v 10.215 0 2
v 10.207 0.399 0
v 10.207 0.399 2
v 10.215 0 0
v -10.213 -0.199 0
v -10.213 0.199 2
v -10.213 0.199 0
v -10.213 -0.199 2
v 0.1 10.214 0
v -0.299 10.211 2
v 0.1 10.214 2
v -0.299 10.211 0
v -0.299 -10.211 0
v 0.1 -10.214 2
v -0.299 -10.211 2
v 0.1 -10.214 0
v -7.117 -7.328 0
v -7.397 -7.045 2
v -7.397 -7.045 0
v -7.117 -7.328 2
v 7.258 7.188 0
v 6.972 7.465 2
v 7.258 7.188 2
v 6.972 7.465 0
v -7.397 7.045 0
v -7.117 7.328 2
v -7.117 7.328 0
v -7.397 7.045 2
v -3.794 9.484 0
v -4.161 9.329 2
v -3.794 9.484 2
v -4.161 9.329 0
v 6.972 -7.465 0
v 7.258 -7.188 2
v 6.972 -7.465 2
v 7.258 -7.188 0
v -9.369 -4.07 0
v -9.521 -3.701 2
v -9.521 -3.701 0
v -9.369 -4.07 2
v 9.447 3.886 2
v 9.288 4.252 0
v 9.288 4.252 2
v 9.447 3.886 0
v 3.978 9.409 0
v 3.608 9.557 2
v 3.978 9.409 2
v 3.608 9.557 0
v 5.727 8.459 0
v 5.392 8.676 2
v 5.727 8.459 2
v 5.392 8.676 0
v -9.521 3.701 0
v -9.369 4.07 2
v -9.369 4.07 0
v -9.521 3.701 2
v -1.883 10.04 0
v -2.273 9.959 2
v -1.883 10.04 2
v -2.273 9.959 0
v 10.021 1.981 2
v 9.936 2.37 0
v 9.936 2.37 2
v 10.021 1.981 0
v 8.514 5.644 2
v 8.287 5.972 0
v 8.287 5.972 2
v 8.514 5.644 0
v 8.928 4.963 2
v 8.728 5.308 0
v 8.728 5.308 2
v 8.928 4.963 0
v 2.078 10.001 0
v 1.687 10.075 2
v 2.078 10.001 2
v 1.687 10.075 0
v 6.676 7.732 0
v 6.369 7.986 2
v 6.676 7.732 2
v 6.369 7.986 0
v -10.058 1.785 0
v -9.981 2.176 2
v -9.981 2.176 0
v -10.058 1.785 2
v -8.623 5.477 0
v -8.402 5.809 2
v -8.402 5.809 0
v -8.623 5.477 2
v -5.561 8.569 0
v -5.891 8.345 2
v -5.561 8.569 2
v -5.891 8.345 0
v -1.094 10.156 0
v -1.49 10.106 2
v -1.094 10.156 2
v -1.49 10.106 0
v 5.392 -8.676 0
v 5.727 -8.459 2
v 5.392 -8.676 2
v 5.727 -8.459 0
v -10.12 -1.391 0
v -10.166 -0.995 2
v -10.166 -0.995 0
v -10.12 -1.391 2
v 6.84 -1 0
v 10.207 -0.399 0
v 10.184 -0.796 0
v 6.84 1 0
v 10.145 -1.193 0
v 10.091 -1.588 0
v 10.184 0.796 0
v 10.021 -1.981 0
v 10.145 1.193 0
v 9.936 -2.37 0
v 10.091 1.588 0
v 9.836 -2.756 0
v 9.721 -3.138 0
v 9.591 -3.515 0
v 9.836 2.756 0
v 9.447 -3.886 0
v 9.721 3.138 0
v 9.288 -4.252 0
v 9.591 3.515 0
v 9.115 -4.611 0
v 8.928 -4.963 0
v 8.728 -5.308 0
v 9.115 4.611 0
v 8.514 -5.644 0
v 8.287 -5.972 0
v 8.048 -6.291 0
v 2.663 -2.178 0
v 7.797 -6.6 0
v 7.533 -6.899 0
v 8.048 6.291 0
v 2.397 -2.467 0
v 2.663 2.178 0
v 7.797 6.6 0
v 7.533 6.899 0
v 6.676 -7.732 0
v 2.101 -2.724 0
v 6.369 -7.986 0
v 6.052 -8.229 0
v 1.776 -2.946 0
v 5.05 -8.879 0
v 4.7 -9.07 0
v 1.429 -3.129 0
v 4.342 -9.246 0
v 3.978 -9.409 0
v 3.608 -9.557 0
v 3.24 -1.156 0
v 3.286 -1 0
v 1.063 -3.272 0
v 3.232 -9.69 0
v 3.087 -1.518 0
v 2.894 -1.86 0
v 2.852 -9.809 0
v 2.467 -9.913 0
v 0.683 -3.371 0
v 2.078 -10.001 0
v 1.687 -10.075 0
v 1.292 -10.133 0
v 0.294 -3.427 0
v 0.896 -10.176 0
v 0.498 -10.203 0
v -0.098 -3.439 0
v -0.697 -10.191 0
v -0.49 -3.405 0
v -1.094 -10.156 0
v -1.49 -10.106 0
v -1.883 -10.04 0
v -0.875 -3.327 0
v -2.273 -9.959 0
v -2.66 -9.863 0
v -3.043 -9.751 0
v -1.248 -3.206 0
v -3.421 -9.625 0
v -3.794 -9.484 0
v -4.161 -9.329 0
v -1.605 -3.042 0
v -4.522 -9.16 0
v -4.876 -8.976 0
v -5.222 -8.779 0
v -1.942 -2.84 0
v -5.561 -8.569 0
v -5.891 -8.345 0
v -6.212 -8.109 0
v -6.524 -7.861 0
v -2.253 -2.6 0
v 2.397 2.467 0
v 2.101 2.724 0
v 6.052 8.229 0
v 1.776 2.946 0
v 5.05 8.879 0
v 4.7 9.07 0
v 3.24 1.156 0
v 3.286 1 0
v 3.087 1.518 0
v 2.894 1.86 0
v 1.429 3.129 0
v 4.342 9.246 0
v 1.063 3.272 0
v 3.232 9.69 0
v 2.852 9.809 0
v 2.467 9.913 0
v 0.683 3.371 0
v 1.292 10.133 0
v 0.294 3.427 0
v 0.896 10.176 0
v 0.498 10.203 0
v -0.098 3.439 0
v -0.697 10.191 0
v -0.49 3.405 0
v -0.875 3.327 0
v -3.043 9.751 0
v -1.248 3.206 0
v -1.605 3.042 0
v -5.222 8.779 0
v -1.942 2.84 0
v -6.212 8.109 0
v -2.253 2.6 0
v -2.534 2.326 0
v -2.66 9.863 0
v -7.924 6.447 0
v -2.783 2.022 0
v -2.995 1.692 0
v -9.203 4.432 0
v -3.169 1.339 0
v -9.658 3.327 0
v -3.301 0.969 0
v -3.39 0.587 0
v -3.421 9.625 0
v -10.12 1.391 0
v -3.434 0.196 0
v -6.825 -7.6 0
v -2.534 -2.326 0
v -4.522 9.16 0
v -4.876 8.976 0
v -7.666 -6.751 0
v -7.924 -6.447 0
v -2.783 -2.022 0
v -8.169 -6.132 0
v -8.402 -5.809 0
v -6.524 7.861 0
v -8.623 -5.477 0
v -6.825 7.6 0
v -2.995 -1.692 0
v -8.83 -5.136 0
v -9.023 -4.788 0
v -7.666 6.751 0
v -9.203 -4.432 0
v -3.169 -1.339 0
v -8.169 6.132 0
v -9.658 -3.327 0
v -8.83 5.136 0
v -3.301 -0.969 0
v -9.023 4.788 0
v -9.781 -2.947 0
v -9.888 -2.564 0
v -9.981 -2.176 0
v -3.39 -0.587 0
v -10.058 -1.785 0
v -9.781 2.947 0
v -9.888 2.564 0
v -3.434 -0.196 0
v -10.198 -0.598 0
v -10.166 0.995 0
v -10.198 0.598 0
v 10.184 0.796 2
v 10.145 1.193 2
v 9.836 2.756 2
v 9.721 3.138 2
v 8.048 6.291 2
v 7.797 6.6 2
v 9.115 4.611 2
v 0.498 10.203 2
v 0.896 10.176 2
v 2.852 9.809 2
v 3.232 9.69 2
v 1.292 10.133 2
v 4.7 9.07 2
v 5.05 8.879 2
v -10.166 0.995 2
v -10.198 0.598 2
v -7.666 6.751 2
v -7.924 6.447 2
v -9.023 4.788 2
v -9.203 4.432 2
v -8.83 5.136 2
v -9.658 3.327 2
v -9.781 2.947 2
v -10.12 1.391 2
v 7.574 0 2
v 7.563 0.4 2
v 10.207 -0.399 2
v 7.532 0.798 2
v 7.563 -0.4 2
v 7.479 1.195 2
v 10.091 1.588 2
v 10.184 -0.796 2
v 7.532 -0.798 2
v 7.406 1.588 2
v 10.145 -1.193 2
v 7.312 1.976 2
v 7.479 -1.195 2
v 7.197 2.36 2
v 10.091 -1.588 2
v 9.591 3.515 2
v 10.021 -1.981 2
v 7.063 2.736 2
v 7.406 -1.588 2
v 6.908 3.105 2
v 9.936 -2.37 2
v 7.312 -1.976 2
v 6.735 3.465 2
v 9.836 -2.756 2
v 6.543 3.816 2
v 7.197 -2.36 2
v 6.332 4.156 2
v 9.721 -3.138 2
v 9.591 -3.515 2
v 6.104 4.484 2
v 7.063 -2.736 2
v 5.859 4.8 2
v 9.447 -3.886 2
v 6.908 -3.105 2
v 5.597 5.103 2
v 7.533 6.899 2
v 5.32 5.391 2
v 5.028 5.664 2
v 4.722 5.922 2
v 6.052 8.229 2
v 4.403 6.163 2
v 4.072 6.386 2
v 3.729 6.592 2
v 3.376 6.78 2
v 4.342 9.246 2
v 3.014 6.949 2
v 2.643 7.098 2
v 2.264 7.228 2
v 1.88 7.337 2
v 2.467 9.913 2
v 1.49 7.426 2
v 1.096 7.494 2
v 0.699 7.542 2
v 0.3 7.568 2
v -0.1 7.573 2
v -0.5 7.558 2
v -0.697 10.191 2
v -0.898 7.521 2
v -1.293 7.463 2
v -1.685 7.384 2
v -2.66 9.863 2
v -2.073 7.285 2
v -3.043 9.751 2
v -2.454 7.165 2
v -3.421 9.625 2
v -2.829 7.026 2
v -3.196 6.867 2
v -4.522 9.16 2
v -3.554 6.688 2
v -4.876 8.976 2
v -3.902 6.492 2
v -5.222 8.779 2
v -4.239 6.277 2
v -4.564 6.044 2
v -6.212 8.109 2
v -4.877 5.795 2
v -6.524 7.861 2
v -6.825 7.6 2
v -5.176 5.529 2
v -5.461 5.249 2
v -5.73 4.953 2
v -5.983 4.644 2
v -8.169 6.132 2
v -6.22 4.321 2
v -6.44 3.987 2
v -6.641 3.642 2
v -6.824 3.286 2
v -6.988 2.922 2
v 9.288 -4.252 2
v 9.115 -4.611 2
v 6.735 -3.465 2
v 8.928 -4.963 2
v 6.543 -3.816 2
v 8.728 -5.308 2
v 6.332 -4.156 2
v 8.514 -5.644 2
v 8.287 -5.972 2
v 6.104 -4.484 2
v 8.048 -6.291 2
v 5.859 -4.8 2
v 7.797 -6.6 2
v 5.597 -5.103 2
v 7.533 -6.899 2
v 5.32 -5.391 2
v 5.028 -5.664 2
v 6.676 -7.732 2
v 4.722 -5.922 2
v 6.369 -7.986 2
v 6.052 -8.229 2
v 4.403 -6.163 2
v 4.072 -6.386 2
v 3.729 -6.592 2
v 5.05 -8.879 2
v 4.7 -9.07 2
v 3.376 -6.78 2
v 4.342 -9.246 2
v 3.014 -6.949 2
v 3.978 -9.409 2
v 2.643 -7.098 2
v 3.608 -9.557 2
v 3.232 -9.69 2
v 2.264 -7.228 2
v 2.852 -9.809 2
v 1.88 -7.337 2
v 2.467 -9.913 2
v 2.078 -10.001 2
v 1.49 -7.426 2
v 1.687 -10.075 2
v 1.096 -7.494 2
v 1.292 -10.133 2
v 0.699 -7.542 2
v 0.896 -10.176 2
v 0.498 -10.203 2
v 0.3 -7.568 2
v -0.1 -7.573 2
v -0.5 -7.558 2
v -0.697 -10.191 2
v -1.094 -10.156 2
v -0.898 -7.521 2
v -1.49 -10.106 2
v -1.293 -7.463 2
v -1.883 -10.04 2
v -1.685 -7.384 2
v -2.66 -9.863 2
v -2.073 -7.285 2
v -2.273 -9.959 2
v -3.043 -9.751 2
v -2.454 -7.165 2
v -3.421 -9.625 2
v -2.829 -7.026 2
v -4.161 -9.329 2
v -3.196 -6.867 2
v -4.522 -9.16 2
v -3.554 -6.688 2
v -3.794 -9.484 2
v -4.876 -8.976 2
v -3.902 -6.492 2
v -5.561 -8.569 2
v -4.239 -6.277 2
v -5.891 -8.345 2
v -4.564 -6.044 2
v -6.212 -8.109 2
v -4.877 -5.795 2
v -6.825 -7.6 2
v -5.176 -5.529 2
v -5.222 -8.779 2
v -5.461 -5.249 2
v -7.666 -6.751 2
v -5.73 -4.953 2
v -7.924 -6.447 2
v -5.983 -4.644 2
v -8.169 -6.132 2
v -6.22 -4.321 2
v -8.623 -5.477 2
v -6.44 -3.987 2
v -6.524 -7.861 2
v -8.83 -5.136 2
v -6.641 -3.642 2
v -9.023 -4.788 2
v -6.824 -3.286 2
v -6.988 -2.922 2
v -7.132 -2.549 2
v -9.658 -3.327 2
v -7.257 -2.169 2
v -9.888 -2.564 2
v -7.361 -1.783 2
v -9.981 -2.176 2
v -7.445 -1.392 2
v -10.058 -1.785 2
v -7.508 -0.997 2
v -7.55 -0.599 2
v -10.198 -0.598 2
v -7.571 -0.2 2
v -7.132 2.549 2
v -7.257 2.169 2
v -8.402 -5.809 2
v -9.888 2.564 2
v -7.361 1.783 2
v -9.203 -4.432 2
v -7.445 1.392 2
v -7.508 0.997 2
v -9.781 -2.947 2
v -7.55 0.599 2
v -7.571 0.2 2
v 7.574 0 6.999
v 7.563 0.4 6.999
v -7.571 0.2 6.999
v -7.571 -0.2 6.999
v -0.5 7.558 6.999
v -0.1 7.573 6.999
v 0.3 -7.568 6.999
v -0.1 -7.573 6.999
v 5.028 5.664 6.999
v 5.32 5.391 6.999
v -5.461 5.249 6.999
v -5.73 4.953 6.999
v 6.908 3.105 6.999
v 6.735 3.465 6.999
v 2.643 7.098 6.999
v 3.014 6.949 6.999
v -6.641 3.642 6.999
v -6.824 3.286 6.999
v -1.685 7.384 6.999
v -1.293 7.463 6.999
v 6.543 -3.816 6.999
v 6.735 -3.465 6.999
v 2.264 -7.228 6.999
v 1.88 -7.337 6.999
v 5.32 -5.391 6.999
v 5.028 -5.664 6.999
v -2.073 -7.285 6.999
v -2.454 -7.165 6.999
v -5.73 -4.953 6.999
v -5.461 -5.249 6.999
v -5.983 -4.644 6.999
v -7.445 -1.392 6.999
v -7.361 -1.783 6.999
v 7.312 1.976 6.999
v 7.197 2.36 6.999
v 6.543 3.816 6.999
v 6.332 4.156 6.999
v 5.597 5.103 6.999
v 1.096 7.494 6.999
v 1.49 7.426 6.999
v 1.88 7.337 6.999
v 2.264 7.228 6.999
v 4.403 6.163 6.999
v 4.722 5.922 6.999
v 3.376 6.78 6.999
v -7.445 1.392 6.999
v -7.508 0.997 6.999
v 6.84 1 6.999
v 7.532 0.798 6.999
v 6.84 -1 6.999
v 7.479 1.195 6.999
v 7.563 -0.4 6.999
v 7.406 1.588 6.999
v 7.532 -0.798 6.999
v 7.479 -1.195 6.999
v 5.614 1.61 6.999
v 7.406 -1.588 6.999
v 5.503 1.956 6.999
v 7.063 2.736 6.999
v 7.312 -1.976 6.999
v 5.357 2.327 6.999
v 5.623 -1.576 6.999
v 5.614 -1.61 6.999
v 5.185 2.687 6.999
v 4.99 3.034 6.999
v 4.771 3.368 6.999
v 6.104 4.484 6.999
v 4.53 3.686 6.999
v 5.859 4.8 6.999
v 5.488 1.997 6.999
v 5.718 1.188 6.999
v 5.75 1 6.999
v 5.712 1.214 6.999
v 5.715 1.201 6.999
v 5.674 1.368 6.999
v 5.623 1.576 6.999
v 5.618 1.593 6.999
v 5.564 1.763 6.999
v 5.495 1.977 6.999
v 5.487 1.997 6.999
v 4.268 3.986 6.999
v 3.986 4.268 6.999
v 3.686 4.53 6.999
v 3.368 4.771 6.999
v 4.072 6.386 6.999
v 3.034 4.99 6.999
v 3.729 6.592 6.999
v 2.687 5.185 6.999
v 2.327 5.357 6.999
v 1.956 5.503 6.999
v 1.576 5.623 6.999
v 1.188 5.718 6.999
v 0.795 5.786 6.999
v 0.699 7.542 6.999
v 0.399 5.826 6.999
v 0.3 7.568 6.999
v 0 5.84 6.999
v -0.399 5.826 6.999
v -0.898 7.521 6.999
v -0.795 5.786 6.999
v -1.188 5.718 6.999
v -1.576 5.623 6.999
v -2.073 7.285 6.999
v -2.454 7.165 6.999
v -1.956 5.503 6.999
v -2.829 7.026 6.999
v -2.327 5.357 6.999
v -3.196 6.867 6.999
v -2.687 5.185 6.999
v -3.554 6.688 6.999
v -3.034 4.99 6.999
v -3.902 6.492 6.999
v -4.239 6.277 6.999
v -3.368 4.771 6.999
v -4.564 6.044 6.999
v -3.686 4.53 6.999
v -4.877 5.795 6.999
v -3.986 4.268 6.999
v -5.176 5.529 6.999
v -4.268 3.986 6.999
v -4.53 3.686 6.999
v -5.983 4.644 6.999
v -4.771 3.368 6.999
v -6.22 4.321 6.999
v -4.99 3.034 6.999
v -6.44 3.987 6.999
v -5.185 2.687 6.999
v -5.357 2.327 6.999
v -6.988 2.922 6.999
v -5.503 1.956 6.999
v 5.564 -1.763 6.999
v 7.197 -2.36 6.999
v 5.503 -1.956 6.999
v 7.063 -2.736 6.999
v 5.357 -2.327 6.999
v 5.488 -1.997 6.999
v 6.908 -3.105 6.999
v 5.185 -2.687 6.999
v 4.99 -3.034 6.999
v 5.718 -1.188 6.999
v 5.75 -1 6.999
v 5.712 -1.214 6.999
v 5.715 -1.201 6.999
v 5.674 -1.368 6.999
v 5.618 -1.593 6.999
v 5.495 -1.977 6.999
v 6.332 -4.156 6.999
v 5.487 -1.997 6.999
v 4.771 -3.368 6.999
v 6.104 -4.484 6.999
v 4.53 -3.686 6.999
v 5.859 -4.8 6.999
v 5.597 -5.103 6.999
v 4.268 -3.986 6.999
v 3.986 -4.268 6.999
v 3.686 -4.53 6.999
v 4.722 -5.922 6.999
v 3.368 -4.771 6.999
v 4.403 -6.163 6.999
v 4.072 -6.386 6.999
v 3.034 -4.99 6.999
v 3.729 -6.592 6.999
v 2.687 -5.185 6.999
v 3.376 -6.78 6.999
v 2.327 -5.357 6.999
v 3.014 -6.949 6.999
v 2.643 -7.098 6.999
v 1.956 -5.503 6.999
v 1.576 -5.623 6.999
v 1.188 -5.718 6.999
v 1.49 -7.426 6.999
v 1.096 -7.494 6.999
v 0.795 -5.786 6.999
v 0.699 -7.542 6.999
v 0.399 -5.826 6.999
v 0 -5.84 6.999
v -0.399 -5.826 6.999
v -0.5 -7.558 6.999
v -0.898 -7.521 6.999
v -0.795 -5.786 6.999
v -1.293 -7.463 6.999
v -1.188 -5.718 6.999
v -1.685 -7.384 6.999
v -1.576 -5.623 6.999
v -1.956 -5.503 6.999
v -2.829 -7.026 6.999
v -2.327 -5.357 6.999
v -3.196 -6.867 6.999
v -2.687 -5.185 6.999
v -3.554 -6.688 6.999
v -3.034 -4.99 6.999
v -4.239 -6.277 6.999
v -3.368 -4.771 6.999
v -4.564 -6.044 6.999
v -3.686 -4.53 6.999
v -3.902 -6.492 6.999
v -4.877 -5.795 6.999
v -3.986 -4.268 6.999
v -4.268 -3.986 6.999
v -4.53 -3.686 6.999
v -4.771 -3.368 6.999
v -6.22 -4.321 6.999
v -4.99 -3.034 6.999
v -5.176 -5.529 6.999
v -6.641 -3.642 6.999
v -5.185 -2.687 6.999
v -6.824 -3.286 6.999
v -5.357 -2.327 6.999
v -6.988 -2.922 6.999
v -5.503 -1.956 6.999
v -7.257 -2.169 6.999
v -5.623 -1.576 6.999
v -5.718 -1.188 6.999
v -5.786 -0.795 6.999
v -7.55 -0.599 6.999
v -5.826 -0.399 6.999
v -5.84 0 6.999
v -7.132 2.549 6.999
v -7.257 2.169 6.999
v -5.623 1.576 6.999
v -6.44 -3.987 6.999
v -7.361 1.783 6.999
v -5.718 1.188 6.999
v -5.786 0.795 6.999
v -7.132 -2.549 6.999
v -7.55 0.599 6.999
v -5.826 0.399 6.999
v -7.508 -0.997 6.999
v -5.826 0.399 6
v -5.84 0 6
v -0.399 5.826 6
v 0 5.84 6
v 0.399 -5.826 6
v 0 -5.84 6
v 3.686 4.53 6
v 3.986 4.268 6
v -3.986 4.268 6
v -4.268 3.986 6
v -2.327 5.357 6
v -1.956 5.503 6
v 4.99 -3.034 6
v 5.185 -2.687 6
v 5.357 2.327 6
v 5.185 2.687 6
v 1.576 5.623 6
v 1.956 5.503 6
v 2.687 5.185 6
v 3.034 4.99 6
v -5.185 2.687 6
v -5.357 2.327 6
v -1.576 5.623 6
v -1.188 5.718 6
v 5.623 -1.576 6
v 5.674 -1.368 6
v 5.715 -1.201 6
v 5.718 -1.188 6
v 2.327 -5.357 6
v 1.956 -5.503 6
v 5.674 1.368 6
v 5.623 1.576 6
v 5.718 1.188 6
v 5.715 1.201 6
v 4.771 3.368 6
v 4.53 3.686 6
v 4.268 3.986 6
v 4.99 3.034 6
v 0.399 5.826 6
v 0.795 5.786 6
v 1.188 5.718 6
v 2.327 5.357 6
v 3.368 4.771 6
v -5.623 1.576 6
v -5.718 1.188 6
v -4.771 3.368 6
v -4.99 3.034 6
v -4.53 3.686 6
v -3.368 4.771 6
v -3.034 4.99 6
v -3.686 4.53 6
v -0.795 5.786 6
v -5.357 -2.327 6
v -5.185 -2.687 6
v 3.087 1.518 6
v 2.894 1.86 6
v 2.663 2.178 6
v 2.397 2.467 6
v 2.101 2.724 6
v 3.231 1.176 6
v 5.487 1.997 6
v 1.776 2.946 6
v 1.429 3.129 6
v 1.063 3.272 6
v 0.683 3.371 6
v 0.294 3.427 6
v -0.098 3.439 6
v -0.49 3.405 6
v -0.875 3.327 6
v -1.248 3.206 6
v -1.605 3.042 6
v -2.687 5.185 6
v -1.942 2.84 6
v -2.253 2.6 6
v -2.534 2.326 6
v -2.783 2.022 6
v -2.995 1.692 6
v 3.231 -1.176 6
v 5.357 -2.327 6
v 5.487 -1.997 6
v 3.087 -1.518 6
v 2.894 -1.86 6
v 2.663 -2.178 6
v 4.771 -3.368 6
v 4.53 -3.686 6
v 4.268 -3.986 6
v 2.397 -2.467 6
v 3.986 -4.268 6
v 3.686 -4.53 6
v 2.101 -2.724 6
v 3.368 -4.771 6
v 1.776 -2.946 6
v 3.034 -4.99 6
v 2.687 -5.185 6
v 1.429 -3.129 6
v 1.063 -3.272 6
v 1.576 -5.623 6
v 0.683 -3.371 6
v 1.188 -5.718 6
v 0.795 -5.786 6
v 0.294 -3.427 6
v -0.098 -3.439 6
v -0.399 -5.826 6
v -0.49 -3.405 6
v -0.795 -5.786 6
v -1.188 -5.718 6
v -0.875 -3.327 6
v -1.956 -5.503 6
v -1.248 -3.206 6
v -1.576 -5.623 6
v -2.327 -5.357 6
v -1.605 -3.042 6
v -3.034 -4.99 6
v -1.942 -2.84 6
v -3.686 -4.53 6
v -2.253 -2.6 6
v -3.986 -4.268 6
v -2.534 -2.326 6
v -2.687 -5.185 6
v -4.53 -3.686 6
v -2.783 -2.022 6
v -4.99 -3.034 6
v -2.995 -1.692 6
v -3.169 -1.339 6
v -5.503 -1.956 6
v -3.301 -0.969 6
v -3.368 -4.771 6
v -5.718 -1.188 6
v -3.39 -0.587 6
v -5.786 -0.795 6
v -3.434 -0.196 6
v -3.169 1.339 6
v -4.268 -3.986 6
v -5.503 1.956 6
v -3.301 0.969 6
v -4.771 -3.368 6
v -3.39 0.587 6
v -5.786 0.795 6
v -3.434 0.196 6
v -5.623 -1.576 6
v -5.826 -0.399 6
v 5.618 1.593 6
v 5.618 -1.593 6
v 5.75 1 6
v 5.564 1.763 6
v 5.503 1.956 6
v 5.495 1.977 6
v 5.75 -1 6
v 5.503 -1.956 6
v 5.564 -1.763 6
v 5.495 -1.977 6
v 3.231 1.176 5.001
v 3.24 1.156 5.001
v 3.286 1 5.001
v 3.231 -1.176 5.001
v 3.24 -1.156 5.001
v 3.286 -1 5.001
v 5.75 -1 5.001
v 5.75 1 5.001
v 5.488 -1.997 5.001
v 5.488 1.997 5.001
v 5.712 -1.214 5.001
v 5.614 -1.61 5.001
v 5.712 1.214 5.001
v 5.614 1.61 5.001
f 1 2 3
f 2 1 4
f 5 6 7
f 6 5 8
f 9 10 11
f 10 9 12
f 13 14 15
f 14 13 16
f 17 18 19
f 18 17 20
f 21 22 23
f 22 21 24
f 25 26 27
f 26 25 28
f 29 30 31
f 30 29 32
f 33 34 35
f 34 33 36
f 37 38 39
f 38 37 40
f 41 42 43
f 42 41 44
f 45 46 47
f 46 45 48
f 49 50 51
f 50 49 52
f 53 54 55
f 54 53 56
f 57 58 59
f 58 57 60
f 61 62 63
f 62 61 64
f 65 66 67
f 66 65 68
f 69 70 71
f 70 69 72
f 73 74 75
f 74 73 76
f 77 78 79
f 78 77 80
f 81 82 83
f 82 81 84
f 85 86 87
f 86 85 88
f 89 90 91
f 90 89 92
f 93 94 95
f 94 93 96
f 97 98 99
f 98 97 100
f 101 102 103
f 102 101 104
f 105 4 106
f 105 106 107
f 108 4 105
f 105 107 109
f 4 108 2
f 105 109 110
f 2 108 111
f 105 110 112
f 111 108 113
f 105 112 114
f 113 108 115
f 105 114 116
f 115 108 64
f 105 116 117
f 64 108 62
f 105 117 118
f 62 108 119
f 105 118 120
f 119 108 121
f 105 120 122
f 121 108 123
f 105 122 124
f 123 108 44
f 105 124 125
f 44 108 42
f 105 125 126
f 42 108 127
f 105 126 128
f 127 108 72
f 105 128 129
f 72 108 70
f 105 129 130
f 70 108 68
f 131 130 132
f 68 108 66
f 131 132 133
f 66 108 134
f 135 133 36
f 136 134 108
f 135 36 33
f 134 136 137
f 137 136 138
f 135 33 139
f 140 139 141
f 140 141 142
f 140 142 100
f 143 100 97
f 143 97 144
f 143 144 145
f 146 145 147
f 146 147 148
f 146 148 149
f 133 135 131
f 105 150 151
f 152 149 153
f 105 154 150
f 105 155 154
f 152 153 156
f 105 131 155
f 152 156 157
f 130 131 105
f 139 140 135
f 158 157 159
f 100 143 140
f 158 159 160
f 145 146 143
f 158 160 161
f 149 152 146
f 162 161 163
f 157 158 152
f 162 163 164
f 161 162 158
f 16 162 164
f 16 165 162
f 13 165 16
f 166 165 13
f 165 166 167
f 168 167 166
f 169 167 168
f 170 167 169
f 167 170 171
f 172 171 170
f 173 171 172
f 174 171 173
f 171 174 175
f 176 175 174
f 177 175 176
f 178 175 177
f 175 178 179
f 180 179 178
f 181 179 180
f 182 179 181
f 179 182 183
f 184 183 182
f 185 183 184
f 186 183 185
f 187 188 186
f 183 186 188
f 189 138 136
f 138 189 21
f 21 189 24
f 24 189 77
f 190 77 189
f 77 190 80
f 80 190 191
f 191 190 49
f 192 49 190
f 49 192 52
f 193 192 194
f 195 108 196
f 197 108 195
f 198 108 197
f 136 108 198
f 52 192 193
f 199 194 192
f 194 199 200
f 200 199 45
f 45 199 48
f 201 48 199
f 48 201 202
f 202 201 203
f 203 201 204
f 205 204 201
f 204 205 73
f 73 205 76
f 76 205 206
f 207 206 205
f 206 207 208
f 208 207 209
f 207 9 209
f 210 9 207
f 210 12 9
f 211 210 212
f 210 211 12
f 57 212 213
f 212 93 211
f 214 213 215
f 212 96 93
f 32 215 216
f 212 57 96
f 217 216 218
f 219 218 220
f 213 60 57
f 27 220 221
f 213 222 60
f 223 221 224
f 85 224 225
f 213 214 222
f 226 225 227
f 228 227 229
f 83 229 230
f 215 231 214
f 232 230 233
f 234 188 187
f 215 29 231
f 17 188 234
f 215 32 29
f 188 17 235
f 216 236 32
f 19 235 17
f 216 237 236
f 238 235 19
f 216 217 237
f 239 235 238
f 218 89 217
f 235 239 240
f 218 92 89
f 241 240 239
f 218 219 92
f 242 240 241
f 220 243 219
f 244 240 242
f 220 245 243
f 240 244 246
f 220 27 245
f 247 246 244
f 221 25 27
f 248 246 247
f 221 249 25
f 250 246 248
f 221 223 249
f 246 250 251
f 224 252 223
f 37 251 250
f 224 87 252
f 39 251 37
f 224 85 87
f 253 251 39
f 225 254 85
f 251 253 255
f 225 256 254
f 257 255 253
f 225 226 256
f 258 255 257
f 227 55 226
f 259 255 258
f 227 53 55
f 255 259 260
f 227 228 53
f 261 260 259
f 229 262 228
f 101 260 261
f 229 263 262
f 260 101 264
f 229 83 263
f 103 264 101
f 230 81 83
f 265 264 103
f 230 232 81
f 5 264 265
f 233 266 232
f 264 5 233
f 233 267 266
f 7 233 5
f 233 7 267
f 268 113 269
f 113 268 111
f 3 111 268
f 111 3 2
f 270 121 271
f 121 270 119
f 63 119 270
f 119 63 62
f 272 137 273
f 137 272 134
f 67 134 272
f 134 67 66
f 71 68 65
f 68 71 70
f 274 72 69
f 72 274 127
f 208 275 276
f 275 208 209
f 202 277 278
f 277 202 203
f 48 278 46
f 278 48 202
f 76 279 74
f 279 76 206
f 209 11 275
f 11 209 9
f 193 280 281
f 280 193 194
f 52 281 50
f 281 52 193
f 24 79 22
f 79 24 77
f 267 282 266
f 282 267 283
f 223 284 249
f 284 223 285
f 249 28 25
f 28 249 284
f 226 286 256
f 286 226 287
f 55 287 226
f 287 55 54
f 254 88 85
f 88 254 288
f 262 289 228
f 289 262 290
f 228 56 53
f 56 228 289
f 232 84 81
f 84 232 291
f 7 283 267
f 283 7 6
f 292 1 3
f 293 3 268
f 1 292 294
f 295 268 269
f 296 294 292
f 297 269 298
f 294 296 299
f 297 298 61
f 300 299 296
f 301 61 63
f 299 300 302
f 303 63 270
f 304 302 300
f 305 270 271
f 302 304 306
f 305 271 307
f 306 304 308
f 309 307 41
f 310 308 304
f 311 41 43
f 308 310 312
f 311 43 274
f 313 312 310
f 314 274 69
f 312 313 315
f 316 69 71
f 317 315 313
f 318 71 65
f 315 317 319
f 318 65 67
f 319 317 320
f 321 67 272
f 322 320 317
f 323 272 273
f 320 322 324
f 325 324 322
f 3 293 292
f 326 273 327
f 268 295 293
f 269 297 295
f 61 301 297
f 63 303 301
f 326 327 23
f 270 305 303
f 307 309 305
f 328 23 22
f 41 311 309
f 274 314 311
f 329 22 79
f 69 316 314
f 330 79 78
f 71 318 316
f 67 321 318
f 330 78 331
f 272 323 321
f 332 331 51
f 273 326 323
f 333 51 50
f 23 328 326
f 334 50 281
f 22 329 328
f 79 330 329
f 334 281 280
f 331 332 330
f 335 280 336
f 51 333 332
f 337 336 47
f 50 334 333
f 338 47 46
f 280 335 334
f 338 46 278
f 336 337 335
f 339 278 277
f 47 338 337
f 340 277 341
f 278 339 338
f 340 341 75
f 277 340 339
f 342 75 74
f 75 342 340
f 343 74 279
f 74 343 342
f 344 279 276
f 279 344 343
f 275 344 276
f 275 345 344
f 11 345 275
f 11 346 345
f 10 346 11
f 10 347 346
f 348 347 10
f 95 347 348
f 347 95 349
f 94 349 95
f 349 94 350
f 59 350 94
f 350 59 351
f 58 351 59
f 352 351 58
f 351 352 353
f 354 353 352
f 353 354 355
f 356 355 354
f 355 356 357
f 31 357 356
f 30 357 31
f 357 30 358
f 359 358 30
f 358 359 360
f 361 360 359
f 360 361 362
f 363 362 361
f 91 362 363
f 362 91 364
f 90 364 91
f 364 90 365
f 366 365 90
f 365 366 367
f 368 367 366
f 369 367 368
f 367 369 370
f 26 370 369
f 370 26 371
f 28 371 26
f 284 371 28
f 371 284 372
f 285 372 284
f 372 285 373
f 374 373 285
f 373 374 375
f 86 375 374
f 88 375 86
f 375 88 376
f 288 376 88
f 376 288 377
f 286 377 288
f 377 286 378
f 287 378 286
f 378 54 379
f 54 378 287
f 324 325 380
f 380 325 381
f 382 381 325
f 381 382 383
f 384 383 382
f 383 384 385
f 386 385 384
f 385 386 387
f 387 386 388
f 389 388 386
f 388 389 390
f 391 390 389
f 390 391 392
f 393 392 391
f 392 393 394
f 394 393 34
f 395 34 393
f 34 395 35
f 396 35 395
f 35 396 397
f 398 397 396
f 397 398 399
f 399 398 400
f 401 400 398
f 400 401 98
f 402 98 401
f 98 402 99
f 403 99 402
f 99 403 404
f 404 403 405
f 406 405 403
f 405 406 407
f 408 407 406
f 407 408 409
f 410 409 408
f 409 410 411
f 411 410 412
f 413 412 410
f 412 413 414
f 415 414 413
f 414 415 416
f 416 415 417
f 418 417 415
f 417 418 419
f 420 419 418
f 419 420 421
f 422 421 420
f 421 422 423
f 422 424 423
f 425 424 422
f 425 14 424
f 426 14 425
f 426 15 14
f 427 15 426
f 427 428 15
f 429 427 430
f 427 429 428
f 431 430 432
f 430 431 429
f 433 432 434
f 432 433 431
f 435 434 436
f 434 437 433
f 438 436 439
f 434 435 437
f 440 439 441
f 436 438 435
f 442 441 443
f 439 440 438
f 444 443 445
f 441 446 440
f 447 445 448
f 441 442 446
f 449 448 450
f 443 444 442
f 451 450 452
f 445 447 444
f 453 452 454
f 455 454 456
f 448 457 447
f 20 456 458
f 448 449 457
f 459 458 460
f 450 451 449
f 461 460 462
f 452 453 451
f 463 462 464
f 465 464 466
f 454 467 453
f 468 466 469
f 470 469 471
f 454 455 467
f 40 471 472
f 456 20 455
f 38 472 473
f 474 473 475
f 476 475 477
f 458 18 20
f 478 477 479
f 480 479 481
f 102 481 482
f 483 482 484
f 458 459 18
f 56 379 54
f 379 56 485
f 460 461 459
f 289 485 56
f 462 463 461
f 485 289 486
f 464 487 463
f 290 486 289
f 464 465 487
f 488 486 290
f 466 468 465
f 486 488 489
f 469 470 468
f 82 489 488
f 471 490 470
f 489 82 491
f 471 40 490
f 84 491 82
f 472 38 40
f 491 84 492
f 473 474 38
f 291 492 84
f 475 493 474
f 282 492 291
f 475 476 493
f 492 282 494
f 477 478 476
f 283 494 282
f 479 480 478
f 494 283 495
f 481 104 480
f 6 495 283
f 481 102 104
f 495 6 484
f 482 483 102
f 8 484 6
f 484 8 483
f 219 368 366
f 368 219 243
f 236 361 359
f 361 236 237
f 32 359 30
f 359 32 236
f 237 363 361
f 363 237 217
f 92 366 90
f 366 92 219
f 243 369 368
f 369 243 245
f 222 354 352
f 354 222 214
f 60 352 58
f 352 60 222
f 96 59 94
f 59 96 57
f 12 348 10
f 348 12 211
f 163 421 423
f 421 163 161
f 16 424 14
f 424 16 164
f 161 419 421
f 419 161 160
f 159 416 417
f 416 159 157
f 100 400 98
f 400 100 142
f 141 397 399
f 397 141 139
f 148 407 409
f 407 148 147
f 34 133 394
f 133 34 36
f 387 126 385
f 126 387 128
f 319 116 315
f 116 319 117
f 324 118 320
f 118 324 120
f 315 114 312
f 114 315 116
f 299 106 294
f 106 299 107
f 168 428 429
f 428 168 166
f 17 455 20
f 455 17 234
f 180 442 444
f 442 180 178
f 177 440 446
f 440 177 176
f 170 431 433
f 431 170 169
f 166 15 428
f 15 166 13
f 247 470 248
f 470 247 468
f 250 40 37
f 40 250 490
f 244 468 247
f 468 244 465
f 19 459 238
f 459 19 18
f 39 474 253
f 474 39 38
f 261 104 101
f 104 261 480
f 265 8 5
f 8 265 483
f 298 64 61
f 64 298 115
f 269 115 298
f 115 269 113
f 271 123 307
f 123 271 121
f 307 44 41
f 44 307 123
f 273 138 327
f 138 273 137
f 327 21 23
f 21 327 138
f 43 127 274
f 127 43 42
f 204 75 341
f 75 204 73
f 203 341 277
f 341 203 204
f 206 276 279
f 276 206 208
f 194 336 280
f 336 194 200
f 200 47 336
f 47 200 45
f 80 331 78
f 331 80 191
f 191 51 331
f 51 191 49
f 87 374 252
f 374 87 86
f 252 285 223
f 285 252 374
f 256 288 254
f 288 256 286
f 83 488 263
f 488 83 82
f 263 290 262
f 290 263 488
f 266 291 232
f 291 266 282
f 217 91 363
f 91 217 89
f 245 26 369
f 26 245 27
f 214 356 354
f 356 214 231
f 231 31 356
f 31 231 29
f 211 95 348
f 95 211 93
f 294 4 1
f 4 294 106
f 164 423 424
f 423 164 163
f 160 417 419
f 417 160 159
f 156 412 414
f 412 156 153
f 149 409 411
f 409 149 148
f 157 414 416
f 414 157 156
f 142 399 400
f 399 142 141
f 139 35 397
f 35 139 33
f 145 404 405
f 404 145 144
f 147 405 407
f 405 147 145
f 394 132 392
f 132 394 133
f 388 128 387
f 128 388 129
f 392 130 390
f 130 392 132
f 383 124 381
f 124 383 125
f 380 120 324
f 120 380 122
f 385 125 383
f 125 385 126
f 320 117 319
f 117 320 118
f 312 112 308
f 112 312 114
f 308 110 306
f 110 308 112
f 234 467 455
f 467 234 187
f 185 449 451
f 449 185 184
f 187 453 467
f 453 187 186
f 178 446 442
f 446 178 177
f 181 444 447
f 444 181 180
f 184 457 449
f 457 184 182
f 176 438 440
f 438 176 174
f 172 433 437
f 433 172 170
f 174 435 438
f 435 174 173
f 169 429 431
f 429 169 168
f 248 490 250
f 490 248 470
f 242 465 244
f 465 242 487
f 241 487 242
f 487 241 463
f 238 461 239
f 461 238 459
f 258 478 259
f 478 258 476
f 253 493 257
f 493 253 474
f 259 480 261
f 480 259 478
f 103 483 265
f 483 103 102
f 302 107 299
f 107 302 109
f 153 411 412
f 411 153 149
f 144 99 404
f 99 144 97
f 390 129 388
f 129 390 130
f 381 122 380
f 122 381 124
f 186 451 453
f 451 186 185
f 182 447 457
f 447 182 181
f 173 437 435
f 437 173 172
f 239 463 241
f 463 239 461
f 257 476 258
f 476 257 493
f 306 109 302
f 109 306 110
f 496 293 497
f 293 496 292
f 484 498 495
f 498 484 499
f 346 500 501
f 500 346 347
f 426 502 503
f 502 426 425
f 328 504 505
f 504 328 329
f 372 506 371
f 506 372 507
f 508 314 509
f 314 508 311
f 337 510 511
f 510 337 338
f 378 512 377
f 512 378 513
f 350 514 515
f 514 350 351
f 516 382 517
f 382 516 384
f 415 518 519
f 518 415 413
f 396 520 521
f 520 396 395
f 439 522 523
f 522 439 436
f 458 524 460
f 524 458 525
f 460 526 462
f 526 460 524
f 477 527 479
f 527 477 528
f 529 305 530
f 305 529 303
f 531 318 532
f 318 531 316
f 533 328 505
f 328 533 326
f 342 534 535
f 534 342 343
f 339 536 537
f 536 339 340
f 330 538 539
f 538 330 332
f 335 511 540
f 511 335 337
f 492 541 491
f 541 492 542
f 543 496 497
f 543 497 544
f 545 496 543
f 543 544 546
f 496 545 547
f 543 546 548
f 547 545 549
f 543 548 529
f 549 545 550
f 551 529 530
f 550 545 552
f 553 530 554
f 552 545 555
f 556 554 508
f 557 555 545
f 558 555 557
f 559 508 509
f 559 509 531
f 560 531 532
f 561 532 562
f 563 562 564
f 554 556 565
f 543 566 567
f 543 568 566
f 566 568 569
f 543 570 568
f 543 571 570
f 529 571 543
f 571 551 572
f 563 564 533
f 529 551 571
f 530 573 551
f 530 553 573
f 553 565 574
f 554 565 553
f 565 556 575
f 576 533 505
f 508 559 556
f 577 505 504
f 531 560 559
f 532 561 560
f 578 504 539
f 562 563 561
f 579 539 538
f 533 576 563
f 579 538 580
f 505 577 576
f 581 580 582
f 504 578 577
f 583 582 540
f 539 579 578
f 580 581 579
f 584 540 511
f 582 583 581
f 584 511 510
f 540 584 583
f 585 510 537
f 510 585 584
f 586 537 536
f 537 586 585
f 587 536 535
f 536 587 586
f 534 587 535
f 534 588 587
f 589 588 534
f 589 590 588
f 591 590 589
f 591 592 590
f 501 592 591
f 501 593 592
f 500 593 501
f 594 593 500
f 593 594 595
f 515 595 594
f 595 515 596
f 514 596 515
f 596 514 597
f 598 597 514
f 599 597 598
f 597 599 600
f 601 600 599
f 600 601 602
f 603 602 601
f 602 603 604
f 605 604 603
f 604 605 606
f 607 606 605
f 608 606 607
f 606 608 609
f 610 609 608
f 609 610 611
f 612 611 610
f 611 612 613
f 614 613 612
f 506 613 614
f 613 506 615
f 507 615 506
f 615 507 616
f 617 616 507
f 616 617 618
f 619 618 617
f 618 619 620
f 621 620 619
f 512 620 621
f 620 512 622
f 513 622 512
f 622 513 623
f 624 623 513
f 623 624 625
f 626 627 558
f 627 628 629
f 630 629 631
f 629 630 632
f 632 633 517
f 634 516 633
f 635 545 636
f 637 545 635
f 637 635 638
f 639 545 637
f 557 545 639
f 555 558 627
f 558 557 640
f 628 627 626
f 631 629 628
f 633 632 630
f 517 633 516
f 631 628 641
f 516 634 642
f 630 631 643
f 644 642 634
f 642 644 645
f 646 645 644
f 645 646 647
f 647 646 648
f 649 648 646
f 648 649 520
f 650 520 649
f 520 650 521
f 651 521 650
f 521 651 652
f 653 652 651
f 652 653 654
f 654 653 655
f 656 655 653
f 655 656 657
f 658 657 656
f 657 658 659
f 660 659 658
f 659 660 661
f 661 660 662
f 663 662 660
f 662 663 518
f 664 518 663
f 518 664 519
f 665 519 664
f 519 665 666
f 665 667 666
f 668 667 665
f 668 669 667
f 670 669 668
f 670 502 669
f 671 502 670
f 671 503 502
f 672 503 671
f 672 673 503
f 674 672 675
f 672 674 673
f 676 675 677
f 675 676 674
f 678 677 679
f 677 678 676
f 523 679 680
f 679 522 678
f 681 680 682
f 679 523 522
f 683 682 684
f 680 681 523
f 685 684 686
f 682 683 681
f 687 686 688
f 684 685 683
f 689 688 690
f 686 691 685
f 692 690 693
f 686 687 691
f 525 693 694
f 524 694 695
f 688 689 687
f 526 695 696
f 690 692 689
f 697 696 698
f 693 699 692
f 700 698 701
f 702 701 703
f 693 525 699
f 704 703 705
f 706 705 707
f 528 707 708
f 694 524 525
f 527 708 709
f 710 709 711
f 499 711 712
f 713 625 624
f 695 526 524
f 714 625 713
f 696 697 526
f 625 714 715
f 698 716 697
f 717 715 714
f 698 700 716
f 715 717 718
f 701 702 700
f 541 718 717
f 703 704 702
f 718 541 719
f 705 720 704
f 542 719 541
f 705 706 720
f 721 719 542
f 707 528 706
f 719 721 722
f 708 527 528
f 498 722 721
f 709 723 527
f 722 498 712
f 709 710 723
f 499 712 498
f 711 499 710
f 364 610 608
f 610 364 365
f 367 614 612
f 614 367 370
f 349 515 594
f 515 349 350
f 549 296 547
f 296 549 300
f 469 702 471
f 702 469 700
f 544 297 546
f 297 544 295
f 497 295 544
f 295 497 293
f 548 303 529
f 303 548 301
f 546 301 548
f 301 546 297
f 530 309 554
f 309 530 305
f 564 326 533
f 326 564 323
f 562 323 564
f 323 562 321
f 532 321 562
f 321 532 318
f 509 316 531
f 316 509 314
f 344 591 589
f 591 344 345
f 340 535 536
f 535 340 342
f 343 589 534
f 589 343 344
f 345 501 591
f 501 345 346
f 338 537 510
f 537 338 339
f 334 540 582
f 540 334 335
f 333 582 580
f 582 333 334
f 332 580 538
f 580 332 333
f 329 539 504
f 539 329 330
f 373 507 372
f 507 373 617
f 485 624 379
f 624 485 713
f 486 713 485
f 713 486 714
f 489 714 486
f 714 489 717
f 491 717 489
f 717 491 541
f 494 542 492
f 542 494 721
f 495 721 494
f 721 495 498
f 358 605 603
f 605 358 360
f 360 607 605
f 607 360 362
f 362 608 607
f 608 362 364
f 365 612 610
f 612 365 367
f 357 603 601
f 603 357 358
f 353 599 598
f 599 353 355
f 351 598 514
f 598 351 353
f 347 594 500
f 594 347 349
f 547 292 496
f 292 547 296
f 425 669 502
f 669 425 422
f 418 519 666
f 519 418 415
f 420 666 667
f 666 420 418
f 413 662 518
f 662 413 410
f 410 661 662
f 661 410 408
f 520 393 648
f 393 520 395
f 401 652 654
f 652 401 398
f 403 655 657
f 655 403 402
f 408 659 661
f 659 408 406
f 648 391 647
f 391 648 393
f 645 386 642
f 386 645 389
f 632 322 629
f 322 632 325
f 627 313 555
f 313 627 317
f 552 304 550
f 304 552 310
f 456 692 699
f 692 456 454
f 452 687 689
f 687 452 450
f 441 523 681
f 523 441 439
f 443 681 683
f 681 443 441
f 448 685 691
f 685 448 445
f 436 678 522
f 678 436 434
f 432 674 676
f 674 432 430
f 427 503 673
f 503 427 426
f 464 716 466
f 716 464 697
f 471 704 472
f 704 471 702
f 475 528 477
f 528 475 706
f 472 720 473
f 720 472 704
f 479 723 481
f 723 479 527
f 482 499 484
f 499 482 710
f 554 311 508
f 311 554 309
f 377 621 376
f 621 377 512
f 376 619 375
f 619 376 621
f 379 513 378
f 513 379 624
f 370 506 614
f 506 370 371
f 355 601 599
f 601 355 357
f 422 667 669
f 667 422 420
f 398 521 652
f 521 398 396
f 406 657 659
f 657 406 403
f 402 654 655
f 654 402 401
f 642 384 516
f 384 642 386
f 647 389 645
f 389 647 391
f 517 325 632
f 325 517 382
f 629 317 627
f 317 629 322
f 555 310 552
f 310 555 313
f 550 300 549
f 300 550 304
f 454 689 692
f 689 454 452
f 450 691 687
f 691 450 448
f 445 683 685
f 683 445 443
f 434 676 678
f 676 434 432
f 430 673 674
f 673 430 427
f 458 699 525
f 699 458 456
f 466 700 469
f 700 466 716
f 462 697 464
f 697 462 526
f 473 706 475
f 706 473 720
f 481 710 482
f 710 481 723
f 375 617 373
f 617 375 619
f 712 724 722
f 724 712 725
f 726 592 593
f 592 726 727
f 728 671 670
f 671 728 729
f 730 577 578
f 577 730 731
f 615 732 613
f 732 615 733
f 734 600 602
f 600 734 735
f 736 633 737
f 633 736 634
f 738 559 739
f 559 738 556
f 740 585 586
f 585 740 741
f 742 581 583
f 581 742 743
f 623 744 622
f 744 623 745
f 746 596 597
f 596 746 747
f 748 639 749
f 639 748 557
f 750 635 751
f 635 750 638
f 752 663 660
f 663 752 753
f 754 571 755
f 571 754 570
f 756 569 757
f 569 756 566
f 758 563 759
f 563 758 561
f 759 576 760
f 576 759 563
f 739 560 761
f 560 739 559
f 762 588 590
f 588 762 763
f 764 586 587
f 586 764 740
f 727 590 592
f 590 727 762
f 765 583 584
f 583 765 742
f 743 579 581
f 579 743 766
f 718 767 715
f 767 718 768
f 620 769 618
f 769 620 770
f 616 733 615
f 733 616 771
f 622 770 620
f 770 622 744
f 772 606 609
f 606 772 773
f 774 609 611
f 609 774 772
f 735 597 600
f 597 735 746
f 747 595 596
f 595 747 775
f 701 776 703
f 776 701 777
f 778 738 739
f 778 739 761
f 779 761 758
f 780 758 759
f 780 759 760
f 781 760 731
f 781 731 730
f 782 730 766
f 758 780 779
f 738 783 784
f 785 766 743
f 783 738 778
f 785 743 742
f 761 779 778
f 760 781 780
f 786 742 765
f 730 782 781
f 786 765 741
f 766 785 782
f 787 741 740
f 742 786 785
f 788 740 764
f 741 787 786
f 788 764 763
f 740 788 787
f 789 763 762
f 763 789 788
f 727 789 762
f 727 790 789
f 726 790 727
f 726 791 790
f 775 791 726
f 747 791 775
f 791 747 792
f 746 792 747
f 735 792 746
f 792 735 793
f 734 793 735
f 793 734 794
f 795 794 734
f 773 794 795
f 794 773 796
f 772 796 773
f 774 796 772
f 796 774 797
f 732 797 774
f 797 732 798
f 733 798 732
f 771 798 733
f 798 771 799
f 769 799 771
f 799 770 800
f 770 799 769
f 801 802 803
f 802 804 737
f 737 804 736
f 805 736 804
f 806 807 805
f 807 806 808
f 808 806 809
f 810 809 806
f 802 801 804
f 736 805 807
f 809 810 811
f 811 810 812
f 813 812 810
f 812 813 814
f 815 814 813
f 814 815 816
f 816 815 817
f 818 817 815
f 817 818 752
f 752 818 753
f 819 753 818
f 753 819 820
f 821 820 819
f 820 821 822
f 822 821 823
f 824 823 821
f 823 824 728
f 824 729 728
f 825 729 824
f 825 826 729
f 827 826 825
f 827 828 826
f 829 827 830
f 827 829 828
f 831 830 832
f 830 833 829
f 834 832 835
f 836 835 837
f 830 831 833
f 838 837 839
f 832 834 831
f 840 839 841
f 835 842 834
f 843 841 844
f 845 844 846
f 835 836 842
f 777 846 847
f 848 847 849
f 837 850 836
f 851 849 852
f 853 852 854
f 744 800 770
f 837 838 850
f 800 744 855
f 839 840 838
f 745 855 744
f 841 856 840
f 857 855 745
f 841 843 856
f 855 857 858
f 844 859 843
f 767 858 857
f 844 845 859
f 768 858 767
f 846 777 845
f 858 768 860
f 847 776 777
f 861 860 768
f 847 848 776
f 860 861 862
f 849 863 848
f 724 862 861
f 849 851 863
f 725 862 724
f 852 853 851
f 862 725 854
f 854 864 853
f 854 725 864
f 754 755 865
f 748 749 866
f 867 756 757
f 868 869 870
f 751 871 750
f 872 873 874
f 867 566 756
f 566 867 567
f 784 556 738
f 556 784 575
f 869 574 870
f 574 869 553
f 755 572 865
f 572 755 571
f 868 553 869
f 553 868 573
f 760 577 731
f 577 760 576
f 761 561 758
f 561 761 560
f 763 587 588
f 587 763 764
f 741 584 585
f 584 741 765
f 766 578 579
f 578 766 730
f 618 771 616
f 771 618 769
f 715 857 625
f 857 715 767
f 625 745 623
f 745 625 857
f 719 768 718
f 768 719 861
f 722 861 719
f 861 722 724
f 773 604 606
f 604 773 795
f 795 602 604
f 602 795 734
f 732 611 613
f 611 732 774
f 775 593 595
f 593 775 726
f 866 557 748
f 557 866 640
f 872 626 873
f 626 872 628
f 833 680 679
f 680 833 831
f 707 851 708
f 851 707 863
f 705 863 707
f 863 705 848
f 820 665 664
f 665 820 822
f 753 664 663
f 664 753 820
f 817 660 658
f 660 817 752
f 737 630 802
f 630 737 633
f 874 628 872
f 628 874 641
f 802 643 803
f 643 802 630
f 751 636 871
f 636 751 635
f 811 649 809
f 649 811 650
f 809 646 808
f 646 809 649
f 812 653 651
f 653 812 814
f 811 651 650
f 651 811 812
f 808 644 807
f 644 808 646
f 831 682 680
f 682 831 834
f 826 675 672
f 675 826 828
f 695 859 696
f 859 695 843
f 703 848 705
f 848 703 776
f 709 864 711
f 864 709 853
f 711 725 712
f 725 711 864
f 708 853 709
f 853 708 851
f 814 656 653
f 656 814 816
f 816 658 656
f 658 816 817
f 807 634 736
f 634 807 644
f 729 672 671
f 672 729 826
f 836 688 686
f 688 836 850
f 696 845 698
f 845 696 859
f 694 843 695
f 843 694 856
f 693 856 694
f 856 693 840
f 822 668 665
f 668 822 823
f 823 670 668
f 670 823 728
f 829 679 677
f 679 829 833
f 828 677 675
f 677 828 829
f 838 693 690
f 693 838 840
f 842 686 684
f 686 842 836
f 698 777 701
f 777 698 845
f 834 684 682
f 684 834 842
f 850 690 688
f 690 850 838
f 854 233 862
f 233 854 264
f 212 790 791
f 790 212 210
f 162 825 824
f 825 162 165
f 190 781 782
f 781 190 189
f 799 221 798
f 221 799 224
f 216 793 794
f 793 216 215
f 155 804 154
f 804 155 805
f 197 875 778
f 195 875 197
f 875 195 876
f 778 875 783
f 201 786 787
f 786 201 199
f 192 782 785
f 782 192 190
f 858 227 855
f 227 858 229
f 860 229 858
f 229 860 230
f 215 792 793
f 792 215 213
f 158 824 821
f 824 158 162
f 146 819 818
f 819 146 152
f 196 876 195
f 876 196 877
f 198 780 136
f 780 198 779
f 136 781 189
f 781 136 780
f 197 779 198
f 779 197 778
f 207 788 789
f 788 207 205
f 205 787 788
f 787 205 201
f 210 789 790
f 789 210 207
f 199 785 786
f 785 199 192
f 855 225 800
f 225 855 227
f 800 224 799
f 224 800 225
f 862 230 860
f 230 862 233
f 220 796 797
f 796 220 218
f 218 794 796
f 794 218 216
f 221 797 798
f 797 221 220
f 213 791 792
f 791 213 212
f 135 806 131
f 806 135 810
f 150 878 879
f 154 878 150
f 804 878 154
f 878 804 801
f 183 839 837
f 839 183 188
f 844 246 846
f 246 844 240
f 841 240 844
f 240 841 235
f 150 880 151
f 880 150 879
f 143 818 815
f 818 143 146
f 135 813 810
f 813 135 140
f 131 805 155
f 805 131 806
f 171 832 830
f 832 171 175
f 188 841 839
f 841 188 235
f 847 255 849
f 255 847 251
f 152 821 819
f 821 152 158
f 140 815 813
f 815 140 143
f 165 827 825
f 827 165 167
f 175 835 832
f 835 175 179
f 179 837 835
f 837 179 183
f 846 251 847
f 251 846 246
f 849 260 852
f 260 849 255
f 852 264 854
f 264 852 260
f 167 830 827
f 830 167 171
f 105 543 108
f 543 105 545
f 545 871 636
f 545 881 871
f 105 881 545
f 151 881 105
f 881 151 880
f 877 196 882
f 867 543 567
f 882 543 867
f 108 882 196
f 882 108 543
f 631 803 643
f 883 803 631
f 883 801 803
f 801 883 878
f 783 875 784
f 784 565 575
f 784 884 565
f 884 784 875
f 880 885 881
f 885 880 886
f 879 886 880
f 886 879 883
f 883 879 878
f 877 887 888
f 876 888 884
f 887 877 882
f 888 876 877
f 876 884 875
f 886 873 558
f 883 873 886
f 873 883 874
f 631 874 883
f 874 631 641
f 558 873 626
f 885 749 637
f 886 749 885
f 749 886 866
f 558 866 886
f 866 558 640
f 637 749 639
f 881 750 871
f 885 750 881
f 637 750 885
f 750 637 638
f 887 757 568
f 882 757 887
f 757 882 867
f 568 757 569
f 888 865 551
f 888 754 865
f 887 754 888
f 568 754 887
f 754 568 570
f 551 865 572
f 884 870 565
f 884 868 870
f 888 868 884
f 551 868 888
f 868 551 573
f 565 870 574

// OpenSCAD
$fa = 1;
$fs = 0.4;

epsilon = 0.001;
slop = 0.15;

//all measurements in mm

inner_pipe_diameter = 15.15;
outer_pipe_diameter = 21.4 - slop;
pipe_wall_thickness = 3.3;

lip_thickness = 2;
plug_thickness = 5;

washer_height = 1;
washer_diameter = 11.53 + slop;
washer_hole_diameter = 4.88;

blob_thickness = 2;

bottom_total_height = lip_thickness + plug_thickness;

module bottom(){
    difference(){
        union(){
            // bottom lip
            color("Orange")
            cylinder(h = lip_thickness, r = inner_pipe_diameter/2 + pipe_wall_thickness*.8);

            // plug
            translate([0,0,lip_thickness-epsilon])
            cylinder(h = plug_thickness, r = inner_pipe_diameter/2 - epsilon);
        }

        // washer
        translate([0,0,lip_thickness+plug_thickness-washer_height])
        color("Red")
        cylinder(h = washer_height + epsilon, r = washer_diameter/2);

        // central column
        translate([0,0,-epsilon])
        color("Purple")
        cylinder(h = lip_thickness+plug_thickness, r = washer_hole_diameter/2 + 1);

        // wire passthrough
        translate([0,-1,-epsilon])
        cube([washer_diameter/2 + 1, 2, bottom_total_height+epsilon]);

        // under washer solder blob clearance
        rotate([0,0,-20])
        translate([0,0,lip_thickness+plug_thickness-blob_thickness+epsilon])
        rotate_extrude(angle=40)
        polygon([
                    [washer_hole_diameter/2, blob_thickness],
                    [washer_diameter/2, blob_thickness],
                    [washer_diameter/2, 0],
                    [washer_hole_diameter/2, 0]
                ]);

    }
}

bottom();
